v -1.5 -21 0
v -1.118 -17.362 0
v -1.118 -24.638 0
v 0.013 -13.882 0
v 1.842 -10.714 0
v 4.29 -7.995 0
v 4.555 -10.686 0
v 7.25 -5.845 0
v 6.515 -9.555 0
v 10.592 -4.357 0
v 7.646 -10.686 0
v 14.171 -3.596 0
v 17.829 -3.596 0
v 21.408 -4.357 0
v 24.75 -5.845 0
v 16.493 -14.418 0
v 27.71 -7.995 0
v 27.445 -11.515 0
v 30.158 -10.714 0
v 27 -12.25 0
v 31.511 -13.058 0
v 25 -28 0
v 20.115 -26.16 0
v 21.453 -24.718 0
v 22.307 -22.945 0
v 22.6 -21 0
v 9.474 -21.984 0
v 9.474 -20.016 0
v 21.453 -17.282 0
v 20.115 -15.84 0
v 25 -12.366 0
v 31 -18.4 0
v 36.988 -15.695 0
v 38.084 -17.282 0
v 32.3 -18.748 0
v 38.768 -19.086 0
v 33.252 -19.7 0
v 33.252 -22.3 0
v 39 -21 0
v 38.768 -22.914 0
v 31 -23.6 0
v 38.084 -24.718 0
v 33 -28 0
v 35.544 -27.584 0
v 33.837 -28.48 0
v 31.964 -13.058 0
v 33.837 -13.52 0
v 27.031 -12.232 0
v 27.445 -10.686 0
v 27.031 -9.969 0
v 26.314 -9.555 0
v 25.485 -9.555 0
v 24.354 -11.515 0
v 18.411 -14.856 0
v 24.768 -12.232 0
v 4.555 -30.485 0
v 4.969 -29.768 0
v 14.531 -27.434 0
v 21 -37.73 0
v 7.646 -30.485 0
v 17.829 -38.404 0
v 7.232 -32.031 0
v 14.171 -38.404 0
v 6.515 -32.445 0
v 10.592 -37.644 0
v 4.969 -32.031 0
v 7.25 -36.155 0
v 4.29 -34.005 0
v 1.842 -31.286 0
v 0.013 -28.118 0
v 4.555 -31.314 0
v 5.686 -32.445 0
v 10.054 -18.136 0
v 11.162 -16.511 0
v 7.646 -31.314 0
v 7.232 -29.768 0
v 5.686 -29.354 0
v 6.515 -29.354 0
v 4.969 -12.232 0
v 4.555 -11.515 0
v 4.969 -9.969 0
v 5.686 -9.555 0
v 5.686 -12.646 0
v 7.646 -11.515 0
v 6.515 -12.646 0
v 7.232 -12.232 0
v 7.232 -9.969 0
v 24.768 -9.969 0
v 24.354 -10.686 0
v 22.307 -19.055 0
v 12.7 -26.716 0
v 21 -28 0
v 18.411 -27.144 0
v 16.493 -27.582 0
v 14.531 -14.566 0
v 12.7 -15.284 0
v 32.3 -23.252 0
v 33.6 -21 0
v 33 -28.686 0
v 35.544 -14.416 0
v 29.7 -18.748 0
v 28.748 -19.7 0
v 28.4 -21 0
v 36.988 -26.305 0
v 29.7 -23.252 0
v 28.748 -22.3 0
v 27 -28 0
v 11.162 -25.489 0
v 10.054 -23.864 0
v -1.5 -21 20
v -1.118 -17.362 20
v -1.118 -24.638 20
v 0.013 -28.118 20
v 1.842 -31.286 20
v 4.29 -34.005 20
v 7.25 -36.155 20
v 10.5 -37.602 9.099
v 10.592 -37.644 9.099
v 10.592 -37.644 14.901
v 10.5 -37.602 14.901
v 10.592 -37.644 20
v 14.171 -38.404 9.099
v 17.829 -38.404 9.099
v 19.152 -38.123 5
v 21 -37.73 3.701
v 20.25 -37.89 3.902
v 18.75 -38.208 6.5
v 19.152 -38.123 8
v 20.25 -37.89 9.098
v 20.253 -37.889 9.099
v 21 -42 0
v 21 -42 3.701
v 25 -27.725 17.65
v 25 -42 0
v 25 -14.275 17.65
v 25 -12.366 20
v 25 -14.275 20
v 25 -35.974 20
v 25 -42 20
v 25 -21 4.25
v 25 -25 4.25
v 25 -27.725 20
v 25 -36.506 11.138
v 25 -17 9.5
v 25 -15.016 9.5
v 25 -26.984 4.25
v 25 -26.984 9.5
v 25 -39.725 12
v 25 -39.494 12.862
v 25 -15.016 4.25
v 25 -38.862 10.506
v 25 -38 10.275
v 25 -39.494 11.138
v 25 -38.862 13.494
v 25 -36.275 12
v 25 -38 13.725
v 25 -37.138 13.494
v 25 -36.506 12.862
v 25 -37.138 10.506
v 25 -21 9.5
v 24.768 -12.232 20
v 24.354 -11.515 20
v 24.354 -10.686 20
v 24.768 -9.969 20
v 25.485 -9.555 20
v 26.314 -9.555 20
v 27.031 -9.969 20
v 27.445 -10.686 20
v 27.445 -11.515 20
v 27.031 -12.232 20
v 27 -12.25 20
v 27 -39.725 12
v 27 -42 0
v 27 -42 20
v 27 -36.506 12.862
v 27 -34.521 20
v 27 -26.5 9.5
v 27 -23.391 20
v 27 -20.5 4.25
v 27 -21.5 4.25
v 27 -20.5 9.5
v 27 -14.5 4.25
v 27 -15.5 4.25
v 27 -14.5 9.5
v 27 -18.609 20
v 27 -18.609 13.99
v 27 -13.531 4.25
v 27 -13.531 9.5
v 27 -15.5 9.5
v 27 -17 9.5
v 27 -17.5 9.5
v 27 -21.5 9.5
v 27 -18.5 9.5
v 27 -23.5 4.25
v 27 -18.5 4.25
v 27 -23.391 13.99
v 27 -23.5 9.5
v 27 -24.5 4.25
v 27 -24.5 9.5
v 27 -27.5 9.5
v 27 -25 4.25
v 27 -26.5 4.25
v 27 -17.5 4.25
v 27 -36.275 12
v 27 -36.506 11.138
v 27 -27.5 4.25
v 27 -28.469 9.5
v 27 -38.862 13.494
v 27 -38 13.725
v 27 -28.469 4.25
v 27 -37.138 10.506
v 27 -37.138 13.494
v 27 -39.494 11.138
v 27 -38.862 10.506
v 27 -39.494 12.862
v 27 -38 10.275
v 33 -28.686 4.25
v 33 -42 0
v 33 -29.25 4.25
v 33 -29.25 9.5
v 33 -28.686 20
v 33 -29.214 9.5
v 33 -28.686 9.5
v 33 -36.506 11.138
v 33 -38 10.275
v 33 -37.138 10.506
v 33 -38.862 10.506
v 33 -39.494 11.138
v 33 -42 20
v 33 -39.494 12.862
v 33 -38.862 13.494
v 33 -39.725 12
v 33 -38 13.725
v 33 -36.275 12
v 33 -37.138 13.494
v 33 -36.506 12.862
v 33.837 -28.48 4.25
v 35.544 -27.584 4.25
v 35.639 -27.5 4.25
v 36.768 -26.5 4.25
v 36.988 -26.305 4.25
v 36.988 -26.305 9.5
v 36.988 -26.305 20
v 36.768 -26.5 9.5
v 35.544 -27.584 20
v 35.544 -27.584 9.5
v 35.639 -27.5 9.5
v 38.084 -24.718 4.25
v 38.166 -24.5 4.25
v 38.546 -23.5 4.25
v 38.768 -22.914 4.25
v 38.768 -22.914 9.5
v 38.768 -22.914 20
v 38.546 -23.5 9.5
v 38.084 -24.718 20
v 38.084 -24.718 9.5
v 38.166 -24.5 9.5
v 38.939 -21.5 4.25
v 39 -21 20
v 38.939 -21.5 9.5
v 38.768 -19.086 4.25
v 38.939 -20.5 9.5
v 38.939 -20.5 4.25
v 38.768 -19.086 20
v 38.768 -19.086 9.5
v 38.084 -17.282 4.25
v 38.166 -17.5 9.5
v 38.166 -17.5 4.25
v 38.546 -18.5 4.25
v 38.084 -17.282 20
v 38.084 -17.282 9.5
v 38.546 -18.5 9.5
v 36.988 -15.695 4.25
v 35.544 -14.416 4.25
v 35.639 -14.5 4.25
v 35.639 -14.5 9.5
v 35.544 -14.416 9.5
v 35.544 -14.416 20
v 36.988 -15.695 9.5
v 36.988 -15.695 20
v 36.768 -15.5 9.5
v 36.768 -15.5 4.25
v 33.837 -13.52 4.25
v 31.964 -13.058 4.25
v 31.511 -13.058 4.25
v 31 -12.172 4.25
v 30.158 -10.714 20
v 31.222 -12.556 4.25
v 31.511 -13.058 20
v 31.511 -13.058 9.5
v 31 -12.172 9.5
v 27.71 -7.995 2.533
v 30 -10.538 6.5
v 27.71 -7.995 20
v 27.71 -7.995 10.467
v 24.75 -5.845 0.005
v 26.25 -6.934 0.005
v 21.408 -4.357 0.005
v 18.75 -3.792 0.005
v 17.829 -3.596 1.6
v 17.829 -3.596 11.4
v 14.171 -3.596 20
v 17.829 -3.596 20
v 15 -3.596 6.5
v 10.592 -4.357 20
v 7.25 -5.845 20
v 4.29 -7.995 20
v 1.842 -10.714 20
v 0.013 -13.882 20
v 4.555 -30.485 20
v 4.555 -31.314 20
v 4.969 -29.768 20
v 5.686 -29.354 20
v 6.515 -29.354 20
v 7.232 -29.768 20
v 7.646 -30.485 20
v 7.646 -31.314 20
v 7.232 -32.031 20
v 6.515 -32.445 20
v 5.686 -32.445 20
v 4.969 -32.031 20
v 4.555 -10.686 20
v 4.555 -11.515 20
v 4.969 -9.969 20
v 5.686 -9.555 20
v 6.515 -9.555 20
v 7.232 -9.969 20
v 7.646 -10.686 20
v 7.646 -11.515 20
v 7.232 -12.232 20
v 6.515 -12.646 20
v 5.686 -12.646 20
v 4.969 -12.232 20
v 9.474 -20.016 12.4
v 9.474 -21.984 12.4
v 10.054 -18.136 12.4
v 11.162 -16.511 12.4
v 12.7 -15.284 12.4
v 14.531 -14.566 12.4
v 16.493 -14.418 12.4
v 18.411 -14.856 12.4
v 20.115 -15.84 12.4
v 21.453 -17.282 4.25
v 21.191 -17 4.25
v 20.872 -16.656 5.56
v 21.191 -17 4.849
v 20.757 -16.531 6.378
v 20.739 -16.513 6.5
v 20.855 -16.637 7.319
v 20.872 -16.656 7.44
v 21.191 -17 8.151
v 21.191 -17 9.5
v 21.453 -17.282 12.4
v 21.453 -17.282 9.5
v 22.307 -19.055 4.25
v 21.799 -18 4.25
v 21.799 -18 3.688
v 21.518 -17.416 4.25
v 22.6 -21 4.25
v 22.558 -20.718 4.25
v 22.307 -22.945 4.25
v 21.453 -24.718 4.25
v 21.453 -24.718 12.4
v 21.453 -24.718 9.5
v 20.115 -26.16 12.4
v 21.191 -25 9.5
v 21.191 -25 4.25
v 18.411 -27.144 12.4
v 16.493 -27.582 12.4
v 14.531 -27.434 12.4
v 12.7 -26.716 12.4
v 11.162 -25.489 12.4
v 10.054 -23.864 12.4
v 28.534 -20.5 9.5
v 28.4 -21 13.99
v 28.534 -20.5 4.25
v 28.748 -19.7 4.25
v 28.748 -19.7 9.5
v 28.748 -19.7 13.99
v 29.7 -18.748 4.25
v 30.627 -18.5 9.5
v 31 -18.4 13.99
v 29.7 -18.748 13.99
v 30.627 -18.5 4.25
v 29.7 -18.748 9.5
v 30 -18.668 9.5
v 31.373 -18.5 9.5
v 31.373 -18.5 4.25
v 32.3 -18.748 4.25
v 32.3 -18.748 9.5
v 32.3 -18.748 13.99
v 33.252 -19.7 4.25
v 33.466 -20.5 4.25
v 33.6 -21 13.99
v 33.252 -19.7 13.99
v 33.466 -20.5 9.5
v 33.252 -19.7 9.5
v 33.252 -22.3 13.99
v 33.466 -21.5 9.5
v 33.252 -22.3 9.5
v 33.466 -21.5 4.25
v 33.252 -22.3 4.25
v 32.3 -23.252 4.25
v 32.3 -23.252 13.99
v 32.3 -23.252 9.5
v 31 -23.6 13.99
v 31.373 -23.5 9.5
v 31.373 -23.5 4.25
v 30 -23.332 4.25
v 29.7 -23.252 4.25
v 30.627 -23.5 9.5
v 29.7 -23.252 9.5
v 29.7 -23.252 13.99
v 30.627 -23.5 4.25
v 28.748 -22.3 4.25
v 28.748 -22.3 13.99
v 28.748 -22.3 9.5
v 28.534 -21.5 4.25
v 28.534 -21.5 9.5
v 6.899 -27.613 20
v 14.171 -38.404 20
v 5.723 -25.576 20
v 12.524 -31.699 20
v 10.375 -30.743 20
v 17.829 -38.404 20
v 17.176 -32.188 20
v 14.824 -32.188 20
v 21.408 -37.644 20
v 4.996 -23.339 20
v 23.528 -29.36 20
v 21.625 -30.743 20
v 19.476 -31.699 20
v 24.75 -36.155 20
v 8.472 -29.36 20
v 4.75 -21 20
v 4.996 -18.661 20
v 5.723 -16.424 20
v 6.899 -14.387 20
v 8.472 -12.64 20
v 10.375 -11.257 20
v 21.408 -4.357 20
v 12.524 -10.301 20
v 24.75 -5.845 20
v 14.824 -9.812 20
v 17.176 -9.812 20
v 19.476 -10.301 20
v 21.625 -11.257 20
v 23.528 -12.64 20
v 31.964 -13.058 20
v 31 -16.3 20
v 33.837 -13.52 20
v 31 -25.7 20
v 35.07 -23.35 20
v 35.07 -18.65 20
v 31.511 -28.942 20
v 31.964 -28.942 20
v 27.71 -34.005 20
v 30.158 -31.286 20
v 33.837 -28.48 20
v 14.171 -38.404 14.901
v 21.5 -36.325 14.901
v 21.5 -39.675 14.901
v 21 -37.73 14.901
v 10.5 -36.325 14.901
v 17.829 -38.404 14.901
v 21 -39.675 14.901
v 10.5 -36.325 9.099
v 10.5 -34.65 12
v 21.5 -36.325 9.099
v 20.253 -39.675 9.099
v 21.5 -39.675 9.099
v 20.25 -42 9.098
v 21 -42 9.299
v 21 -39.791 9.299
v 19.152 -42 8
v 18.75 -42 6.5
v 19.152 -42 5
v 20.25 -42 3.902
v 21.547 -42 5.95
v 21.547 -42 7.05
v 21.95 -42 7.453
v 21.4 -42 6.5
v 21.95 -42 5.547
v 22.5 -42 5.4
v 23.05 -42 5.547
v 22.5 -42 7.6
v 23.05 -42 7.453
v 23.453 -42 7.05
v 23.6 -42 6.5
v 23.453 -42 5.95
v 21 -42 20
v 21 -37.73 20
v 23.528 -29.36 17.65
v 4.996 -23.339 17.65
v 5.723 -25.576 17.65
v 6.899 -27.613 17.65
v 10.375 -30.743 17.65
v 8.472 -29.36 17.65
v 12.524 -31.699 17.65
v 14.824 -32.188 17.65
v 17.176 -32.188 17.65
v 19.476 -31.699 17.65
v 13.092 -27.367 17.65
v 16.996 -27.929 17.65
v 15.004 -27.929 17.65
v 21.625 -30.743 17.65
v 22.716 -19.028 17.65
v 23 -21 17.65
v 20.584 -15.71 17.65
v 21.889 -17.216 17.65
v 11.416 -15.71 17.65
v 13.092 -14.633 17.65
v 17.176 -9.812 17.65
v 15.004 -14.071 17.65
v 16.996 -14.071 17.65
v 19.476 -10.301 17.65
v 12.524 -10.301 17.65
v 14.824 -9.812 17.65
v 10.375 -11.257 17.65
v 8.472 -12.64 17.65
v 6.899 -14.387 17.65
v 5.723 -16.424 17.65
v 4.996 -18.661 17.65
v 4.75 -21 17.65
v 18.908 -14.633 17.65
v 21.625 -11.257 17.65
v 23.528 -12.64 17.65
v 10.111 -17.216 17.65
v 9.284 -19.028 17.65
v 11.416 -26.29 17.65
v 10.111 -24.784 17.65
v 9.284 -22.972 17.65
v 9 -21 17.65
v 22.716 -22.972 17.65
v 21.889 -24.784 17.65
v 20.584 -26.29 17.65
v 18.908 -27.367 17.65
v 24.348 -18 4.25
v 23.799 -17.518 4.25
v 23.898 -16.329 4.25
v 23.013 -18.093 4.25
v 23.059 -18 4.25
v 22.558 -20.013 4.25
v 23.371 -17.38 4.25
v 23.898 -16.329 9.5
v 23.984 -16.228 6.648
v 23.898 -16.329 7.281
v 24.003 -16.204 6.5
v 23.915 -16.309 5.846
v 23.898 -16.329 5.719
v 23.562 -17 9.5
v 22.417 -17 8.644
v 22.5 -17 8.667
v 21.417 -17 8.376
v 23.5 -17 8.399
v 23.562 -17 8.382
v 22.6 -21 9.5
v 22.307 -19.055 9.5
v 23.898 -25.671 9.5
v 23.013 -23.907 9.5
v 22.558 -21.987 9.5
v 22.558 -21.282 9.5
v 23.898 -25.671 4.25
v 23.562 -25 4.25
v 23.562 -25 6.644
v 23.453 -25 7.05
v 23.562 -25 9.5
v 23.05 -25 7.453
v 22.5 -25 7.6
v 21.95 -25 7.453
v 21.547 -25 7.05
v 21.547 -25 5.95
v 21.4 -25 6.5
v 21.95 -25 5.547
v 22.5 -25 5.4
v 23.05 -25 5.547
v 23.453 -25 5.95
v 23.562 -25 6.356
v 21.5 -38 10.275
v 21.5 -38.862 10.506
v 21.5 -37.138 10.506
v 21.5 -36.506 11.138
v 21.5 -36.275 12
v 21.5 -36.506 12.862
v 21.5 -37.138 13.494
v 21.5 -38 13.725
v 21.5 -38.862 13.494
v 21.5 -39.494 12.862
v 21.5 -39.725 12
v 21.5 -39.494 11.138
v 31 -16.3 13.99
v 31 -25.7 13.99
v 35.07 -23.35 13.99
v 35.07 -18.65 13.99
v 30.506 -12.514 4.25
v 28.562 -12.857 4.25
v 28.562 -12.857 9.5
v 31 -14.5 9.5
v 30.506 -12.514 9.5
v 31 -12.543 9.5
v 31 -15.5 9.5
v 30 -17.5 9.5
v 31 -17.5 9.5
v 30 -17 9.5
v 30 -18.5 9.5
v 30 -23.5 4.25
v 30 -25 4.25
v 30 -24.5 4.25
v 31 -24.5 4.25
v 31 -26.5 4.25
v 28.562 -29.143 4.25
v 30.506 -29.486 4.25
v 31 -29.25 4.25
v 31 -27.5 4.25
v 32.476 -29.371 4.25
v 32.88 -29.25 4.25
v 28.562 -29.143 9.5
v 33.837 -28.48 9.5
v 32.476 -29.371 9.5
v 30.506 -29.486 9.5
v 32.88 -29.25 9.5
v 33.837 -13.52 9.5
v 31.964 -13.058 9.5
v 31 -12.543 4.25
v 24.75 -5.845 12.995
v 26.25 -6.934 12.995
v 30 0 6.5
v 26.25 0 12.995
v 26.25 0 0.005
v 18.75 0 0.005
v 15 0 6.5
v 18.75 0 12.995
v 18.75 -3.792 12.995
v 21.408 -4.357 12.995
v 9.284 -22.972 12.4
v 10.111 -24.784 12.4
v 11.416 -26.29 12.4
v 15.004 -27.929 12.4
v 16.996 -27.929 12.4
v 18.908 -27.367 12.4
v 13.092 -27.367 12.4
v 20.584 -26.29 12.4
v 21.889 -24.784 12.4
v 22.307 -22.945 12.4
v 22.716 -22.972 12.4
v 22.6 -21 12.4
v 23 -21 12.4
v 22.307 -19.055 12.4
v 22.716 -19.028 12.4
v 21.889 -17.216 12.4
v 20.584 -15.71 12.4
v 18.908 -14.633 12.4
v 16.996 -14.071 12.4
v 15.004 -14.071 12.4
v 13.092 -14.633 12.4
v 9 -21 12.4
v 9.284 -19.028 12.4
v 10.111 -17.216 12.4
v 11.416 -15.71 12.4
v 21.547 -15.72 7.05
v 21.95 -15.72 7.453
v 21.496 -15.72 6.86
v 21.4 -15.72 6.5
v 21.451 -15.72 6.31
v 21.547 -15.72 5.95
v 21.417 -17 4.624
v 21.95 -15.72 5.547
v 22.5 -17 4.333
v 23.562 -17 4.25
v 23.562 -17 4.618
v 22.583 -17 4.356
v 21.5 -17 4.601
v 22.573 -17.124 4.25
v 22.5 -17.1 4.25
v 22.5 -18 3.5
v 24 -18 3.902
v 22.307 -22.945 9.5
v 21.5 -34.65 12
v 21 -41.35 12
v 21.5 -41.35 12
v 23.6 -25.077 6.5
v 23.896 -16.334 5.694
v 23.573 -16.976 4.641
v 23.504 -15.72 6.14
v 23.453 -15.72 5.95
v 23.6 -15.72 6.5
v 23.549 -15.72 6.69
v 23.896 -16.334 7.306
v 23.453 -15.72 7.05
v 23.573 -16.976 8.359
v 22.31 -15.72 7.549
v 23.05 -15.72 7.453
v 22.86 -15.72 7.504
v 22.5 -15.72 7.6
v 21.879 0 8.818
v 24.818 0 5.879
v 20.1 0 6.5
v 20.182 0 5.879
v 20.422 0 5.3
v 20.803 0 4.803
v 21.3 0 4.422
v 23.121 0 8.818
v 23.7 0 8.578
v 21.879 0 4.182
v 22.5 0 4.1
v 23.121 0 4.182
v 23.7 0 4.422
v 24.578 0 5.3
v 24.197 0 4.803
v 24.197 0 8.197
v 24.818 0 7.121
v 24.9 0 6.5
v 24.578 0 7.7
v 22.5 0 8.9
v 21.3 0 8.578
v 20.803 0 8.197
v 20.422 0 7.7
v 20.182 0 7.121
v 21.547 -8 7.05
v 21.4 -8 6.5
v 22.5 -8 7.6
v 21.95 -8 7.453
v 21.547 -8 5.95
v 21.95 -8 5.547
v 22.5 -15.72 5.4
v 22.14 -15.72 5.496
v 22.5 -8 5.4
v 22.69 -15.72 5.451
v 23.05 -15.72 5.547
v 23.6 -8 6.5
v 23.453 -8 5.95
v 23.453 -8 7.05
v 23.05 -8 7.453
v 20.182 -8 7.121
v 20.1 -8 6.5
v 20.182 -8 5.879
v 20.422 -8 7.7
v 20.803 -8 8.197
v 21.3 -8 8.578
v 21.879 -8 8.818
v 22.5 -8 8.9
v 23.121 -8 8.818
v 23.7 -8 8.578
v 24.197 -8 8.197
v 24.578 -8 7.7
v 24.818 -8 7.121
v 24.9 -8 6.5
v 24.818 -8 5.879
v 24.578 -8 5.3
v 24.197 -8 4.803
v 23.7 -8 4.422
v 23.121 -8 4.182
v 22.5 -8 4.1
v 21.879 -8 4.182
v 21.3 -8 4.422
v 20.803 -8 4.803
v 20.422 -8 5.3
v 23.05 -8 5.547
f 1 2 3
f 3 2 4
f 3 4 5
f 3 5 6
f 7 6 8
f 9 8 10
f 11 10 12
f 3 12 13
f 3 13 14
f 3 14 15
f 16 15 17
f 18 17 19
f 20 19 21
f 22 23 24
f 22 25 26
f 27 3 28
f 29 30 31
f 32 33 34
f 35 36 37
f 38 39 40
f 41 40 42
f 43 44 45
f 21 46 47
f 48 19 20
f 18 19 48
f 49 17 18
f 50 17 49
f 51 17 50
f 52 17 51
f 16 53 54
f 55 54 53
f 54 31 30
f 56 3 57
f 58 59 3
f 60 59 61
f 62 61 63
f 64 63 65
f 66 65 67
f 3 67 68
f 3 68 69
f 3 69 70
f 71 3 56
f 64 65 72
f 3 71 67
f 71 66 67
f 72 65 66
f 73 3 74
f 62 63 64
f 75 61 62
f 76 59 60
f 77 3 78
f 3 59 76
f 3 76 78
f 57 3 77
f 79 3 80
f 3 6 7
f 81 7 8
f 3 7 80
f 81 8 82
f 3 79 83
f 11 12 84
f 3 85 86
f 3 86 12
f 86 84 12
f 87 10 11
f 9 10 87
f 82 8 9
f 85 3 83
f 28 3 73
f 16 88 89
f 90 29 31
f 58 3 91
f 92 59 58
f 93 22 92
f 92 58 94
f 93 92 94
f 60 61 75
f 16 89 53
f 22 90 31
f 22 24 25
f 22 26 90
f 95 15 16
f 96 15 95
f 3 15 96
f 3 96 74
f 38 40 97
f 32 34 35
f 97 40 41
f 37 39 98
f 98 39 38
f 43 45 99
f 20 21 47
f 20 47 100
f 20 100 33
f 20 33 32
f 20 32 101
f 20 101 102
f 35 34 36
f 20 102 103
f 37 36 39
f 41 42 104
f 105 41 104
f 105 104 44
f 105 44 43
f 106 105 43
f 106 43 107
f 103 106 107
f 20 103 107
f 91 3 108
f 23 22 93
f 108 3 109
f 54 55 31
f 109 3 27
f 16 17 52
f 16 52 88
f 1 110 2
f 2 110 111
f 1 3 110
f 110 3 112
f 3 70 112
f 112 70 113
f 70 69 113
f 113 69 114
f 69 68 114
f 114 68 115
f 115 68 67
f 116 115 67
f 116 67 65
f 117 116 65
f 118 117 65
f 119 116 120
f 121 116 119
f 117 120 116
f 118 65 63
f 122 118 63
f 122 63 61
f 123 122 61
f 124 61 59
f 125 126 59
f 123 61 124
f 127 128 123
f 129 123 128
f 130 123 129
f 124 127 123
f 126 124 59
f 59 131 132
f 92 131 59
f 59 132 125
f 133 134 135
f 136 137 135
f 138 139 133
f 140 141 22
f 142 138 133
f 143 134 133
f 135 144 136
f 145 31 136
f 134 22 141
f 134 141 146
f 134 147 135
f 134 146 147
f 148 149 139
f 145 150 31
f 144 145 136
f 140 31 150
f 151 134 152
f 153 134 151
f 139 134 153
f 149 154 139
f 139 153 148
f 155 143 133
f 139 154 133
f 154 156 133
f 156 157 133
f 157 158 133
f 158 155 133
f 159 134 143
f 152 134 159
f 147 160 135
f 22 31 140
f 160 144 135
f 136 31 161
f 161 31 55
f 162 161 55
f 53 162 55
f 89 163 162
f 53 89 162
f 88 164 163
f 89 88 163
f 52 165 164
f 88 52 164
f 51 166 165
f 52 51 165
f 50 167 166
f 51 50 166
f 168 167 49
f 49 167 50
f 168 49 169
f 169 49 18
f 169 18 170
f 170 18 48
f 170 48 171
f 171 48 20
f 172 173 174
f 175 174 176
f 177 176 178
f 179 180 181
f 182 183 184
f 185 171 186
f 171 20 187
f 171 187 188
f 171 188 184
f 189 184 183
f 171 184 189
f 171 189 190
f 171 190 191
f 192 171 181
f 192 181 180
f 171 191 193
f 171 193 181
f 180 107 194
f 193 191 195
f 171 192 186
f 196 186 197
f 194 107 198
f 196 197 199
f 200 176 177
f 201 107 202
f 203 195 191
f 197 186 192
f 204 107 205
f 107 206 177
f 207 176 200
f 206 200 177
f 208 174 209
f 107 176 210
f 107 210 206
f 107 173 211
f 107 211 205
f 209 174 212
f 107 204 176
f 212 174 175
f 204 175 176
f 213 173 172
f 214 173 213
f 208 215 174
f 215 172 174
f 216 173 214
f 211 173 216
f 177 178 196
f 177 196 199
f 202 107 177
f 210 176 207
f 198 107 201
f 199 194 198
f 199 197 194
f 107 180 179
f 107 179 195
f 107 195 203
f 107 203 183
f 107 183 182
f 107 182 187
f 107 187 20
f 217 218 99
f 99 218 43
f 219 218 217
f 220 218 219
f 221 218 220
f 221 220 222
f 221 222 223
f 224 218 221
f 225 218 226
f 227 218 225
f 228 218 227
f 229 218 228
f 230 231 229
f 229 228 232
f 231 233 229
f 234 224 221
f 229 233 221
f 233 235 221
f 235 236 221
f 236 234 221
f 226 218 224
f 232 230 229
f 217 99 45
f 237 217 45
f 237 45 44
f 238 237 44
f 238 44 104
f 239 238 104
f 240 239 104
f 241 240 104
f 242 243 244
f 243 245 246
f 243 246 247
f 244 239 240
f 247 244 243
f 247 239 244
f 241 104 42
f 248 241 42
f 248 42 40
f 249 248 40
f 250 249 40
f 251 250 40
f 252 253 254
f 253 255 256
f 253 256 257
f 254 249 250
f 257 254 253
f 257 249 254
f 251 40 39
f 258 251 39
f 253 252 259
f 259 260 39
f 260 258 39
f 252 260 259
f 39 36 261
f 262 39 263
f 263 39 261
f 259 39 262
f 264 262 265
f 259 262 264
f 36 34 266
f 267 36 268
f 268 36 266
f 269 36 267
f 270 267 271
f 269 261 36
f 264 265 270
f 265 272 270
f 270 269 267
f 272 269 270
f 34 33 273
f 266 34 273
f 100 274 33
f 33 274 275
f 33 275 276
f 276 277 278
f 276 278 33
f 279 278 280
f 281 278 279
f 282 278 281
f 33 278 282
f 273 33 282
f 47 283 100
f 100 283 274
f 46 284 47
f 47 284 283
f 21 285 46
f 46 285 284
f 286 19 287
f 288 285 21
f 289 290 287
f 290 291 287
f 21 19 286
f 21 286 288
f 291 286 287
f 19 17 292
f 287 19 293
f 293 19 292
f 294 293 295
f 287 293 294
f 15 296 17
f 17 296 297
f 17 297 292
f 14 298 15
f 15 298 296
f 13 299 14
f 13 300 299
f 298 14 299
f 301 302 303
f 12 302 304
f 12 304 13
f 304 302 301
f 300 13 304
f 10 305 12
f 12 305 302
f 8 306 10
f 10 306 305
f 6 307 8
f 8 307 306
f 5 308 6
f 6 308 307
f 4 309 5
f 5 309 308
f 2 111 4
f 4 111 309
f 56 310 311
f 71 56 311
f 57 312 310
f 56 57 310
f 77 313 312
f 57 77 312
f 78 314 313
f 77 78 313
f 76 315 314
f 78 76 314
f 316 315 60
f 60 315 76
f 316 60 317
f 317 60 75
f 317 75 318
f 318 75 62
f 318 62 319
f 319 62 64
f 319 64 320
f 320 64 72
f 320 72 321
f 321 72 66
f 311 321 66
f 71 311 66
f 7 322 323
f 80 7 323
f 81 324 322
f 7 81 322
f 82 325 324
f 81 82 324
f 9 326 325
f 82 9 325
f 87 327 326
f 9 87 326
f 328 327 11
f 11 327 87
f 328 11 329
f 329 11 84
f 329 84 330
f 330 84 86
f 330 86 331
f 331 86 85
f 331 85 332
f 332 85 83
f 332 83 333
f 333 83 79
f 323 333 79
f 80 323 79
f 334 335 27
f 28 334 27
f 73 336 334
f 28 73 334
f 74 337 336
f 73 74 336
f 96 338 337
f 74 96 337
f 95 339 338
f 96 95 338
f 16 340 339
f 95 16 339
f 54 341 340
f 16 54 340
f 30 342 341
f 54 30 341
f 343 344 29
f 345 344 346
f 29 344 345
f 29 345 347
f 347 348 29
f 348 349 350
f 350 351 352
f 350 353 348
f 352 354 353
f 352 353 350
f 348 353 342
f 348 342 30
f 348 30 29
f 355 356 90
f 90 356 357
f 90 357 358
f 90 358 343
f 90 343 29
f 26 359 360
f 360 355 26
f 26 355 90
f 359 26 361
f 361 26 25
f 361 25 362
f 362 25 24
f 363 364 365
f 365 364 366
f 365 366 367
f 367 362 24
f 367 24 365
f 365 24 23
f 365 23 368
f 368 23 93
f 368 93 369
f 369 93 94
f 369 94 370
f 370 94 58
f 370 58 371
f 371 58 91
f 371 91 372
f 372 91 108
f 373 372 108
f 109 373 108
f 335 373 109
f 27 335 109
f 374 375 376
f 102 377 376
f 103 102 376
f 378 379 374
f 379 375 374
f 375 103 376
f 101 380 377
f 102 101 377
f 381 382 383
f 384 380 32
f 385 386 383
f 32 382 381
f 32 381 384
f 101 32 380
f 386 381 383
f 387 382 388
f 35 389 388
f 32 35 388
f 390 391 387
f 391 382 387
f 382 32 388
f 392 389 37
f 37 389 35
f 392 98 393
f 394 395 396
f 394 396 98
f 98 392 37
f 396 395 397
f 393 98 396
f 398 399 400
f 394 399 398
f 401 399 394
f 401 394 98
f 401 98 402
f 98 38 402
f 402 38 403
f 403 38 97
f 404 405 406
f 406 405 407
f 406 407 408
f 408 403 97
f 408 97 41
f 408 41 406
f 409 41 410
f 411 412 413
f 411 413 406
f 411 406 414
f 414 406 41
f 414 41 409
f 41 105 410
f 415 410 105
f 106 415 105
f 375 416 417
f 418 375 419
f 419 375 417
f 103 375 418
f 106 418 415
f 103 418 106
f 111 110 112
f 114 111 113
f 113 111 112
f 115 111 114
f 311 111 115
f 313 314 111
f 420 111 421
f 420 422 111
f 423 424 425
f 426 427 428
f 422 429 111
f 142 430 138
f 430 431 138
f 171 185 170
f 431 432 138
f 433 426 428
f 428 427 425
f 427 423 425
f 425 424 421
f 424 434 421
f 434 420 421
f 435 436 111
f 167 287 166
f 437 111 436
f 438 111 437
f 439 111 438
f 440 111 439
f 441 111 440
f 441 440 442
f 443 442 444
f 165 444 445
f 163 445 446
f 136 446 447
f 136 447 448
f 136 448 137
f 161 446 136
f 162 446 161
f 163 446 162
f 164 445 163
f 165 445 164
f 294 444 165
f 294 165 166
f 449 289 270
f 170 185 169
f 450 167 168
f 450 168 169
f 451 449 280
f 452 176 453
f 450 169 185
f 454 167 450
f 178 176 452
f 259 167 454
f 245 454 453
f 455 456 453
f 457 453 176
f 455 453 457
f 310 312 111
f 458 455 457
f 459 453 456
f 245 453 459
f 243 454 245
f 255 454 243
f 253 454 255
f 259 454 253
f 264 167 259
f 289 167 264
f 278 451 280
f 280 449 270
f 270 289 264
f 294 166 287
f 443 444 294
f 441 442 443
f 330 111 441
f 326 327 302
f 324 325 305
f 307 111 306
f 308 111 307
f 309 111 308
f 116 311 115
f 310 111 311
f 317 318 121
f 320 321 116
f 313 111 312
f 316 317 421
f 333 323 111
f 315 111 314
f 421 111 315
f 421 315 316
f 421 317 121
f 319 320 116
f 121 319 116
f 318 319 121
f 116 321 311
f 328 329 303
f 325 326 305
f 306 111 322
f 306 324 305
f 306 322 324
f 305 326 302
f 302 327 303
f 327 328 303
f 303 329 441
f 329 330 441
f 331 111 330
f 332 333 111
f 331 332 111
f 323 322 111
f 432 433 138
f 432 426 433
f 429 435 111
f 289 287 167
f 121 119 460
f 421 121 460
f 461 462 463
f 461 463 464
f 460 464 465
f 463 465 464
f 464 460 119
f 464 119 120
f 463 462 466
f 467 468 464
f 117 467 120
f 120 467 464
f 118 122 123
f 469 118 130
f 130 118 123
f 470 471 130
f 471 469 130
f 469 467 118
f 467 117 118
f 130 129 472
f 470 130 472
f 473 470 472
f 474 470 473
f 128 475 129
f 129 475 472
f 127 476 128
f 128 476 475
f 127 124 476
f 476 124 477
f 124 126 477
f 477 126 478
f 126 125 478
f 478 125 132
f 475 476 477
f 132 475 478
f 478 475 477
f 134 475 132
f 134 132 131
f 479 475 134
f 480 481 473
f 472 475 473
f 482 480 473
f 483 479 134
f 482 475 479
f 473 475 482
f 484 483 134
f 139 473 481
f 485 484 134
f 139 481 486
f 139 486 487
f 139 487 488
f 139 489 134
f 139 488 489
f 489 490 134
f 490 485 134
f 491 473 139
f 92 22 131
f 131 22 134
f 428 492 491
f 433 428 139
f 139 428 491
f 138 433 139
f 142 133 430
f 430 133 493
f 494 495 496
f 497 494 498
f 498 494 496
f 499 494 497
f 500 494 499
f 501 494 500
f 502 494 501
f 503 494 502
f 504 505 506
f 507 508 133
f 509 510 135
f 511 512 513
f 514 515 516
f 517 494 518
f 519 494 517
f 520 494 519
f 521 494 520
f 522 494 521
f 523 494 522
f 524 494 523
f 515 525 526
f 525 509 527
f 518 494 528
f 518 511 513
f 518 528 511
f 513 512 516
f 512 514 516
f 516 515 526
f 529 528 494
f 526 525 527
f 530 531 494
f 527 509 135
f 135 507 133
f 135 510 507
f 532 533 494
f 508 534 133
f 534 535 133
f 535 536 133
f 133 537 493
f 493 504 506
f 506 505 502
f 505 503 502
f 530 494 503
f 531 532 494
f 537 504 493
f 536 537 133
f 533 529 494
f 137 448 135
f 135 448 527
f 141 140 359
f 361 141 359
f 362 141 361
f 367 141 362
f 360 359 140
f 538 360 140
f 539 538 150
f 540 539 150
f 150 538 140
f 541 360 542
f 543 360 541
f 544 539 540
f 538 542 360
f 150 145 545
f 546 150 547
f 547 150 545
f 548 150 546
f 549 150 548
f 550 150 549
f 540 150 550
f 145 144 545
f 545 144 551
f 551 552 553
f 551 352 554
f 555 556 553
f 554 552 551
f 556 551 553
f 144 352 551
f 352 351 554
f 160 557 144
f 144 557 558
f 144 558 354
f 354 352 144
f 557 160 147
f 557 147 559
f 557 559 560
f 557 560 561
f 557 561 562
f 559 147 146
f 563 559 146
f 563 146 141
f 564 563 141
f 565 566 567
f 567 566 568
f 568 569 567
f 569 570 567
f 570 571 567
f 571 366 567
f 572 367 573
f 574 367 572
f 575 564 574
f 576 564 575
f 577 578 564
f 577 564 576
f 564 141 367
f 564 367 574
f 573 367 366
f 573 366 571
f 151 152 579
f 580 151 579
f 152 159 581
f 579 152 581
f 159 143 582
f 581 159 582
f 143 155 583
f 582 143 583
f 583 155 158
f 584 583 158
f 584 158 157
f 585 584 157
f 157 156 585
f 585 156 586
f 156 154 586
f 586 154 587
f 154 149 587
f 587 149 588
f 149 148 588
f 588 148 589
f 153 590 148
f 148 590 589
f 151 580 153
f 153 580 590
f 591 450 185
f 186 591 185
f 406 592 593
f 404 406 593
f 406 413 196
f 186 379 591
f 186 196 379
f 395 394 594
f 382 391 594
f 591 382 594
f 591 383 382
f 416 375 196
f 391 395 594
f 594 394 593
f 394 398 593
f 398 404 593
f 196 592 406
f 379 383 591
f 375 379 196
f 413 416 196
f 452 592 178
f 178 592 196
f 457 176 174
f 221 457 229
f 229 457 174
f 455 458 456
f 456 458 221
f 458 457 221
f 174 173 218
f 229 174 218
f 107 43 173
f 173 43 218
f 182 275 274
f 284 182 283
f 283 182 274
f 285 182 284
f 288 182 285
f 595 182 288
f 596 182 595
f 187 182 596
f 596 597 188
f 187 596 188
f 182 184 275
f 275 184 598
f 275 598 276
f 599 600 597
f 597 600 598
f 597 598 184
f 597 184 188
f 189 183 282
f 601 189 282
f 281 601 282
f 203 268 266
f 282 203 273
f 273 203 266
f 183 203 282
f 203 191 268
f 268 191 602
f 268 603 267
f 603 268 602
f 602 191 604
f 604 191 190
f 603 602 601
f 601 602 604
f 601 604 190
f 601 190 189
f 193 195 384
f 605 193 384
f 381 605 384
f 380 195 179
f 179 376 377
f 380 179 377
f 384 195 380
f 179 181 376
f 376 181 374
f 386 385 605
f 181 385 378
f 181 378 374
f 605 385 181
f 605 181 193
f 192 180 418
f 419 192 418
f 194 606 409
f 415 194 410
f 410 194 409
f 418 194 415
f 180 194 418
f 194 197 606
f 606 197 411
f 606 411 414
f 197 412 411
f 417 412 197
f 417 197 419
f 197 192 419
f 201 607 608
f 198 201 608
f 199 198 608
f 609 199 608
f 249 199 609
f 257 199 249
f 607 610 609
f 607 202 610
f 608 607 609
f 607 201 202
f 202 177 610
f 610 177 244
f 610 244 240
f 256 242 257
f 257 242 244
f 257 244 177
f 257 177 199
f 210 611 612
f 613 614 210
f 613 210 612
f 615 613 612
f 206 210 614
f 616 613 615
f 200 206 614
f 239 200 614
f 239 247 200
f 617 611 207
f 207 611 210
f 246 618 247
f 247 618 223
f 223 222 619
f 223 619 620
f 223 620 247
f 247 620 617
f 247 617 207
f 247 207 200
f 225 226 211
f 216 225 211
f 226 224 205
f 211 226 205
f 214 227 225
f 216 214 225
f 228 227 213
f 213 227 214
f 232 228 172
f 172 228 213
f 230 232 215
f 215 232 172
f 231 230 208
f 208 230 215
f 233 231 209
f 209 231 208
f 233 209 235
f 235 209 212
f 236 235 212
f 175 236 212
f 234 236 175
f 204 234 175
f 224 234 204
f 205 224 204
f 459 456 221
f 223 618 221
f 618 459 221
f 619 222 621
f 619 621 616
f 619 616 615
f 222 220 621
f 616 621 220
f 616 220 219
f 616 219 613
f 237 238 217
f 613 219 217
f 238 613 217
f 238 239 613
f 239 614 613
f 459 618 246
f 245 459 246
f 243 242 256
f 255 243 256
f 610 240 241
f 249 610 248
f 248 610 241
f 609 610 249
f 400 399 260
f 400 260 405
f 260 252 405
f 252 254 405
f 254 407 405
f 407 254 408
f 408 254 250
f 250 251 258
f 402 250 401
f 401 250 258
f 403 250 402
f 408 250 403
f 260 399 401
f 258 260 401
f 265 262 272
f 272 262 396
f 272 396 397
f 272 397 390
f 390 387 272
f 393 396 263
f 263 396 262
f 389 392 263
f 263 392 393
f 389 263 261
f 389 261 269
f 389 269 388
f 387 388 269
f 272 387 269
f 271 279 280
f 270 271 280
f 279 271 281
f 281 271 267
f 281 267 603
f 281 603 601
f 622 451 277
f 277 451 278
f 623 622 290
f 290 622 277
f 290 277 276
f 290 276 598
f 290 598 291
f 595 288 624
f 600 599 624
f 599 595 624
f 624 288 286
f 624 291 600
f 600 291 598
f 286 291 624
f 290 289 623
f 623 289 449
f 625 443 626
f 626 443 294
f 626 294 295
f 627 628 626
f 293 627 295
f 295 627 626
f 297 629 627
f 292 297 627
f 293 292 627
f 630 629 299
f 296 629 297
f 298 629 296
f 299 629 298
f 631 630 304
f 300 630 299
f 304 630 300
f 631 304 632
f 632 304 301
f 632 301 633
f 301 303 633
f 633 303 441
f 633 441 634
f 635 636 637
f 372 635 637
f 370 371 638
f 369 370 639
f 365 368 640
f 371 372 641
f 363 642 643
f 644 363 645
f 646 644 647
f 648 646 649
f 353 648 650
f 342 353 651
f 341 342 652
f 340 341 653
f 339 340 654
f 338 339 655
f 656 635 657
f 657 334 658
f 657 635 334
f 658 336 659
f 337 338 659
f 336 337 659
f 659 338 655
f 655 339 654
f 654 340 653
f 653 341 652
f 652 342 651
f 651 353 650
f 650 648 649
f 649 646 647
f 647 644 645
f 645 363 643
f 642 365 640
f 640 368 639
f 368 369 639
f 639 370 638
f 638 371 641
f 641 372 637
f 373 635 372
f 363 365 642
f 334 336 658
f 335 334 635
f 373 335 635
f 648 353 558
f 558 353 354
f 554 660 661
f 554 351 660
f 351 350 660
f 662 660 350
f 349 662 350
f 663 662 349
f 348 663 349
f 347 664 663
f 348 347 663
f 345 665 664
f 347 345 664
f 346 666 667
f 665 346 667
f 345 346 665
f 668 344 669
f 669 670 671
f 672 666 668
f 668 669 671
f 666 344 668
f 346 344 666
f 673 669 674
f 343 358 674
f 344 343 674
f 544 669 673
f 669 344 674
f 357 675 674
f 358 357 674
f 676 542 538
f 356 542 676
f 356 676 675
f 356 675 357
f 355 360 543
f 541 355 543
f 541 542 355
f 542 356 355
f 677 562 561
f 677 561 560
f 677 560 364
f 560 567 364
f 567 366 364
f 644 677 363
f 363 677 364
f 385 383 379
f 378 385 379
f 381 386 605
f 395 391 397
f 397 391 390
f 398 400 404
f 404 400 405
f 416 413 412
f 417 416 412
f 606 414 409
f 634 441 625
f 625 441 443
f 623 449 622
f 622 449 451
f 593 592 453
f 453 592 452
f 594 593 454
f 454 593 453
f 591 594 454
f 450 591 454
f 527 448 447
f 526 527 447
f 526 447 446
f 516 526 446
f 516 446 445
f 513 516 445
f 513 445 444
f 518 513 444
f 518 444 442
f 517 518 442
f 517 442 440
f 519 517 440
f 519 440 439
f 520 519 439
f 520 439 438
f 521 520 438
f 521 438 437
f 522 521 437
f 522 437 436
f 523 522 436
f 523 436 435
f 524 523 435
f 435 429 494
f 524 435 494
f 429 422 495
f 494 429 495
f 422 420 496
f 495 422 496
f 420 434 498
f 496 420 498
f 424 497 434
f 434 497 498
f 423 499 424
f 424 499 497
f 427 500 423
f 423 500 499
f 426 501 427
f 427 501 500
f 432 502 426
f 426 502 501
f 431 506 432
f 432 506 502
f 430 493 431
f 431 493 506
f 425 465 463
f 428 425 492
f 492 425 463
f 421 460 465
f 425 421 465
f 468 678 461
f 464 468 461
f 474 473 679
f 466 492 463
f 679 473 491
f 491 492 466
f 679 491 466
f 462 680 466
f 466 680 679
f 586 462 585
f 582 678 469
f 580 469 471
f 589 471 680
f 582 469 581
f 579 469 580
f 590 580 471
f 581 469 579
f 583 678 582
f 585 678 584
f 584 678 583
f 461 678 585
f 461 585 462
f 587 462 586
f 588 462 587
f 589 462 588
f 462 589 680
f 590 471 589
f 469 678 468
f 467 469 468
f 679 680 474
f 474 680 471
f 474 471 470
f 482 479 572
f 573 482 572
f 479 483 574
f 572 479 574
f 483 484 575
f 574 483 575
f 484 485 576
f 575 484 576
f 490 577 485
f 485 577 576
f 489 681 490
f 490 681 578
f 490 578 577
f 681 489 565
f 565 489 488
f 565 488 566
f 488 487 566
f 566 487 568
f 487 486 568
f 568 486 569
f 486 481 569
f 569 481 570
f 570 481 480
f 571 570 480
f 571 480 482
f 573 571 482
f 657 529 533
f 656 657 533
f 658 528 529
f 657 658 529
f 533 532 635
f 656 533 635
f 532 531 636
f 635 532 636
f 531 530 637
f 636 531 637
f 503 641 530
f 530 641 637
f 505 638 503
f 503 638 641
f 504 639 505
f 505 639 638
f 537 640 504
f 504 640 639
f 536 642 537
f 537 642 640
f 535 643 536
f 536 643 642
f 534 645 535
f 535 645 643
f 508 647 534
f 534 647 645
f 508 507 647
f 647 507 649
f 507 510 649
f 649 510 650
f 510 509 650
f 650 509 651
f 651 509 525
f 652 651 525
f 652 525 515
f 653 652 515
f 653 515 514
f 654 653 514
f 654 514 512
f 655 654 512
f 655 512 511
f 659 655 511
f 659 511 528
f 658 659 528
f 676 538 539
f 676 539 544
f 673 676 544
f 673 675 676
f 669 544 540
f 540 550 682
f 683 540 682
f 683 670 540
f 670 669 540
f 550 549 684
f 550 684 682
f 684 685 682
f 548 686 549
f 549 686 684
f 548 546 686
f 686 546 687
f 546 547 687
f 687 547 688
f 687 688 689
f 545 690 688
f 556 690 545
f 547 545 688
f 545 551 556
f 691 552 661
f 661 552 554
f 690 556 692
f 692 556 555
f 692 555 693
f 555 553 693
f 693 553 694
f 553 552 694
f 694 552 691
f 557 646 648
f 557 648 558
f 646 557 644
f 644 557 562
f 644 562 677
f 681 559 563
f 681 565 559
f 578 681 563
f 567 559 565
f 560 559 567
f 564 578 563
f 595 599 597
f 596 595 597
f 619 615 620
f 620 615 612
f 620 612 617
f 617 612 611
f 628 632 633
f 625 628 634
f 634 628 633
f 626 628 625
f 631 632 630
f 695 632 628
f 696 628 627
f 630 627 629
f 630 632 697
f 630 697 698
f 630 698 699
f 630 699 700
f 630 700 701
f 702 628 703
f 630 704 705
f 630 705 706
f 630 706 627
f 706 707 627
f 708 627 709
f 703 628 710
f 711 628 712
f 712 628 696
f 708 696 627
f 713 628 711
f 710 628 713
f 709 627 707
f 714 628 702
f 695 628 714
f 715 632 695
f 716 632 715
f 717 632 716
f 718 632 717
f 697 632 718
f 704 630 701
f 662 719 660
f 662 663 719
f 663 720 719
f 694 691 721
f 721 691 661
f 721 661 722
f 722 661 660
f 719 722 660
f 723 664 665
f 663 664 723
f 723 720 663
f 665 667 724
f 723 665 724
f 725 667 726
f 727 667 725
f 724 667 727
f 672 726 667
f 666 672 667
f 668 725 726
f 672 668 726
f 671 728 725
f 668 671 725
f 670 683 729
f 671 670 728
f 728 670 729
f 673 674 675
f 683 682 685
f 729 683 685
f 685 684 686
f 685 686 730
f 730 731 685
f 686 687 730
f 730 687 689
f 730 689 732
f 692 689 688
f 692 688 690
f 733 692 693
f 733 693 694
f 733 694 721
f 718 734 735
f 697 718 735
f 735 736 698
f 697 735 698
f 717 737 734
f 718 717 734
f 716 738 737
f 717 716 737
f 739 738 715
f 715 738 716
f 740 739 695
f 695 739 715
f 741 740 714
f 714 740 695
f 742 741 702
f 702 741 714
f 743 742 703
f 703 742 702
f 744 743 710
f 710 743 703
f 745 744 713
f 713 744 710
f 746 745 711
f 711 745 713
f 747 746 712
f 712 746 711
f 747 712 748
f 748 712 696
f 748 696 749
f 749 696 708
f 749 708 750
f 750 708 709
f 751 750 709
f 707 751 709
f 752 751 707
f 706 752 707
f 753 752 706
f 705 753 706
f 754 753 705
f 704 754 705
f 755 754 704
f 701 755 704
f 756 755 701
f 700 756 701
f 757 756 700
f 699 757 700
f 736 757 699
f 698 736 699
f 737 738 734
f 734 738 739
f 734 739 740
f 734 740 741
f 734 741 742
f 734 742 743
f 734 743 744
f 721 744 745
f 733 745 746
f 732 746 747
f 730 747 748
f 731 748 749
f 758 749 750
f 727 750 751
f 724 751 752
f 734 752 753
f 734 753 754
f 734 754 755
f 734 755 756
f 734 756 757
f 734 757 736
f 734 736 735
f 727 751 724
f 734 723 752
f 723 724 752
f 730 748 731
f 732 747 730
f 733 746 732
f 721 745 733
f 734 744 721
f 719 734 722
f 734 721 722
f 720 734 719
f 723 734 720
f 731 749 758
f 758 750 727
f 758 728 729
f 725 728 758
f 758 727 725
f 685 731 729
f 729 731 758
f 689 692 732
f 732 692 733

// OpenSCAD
// file: configuration.scad
// Increase this if your slicer or printer make holes too tight.
extra_radius = 0.1;

// OD = outside diameter, corner to corner.
m3_nut_od = 6.1;
m3_nut_radius = m3_nut_od/2 + 0.2 + extra_radius;

// Major diameter of metric 3mm thread.
m3_major = 2.85;
m3_radius = m3_major/2 + extra_radius;
m3_wide_radius = m3_major/2 + extra_radius + 0.2;

// NEMA17 stepper motors.
motor_shaft_diameter = 5;
motor_shaft_radius = motor_shaft_diameter/2 + extra_radius;

// Frame brackets.
thickness = 3.6;
// main file
// Based on "Makergear Filament drive goes Bowden" by Luke321
// http://www.thingiverse.com/thing:63674

include <configuration.scad>;

filament_offset = 22.5;

rotate([90, 0, 0])
difference() {
  union() {
    //main cylinder
    translate([16,20,21]) rotate([90,0,0]) cylinder(h=20, r=17.5);

    //bearing mount
    translate([31,20,21]) rotate([90,0,0]) cylinder (h=20, r=8);

    //pushfit/pneufit mount
    translate([filament_offset, 6.5, 10])
      cylinder(r=7.5, h=20, center=true, $fn=6);

    //filament support
    translate([21.75,6.5,34]) rotate([0,0,0]) cylinder (h=8, r=3, $fn=12);

    //groovemount supports
    //	translate([33,6.5,-7]) rotate([0,0,0]) cylinder (h=16, r=5, $fn=12);
    //	  translate([9,6.5,-7]) rotate([0,0,0]) cylinder (h=16, r=5, $fn=12);

    //clamp
    translate([21,0,28]) cube([12, 20, 14]);
  }

  //pulley opening
  translate([16,21,21]) rotate([90,0,0]){
    cylinder (h=22, r=6.6);

    rotate([0,0,45]) {
      //translate([14,0,0]) cylinder(h=22, r=1.6, $fn=12);
      translate([0,14,0]) cylinder(h=22, r=1.6, $fn=12);
      translate([-14,0,0]) cylinder(h=22, r=1.6, $fn=12);
      translate([0,-14,0]) cylinder(h=22, r=1.6, $fn=12);
    }
  }

  //gearhead indentation
  translate([16,21,21]) rotate([90,0,0]) cylinder (h=3.35, r=11.25);

  //pulley hub indentation
  translate([16,20-2,21]) rotate([90,0,0]) cylinder (h=5.6, r=7);

  //bearing screws
  translate([31,21,21]) rotate([90,0,0]) cylinder (h=22, r=2.6, $fn=12);
  #translate([31,22,21]) rotate([90,30,0]) cylinder (h=8.01, r=4.7, $fn=6);

  //bearing
  difference() {
    union() {
      translate([31,9.5,21]) rotate([90,0,0]) cylinder (h=5.25, r=8.5);
      translate([31,9.5-5.25,21-8.25-2]) cube([20, 5.25, 18.5]);
      //opening between bearing and pulley
      translate([20,9.5-5.25,21-8.25+3.25+1]) cube([10, 5.25, 8]);
    }
    //removable supports
    for (z = [15:3:27]) {
      translate([36, 10, z]) # cube([20, 20, 1], center=true);
    }
  }

  //filament path chamfer
  translate([filament_offset,6.5,15]) rotate([0,0,0]) #
    cylinder(h=3, r1=0.5, r2=3, $fn=12);

  //filament path
  translate([filament_offset,6.5,-10]) rotate([0,0,0]) #
    cylinder(h=60, r=1.1, $fn=12);

  //pushfit/pneufit mount
  translate([filament_offset,6.5,-10]) cylinder (h=18, r=2.4, $fn=24);

  //clamp slit
  translate([25,-1,10]) cube([2, 22, 35]);
  //clamp nut
  translate([10.5,12,38]) rotate([0,90,0])
    cylinder(h=11, r=m3_nut_radius, $fn=6);
  //clamp screw hole
  translate([15,12,38]) rotate([0,90,0])
    cylinder(h=20, r=m3_wide_radius, $fn=12);
}
